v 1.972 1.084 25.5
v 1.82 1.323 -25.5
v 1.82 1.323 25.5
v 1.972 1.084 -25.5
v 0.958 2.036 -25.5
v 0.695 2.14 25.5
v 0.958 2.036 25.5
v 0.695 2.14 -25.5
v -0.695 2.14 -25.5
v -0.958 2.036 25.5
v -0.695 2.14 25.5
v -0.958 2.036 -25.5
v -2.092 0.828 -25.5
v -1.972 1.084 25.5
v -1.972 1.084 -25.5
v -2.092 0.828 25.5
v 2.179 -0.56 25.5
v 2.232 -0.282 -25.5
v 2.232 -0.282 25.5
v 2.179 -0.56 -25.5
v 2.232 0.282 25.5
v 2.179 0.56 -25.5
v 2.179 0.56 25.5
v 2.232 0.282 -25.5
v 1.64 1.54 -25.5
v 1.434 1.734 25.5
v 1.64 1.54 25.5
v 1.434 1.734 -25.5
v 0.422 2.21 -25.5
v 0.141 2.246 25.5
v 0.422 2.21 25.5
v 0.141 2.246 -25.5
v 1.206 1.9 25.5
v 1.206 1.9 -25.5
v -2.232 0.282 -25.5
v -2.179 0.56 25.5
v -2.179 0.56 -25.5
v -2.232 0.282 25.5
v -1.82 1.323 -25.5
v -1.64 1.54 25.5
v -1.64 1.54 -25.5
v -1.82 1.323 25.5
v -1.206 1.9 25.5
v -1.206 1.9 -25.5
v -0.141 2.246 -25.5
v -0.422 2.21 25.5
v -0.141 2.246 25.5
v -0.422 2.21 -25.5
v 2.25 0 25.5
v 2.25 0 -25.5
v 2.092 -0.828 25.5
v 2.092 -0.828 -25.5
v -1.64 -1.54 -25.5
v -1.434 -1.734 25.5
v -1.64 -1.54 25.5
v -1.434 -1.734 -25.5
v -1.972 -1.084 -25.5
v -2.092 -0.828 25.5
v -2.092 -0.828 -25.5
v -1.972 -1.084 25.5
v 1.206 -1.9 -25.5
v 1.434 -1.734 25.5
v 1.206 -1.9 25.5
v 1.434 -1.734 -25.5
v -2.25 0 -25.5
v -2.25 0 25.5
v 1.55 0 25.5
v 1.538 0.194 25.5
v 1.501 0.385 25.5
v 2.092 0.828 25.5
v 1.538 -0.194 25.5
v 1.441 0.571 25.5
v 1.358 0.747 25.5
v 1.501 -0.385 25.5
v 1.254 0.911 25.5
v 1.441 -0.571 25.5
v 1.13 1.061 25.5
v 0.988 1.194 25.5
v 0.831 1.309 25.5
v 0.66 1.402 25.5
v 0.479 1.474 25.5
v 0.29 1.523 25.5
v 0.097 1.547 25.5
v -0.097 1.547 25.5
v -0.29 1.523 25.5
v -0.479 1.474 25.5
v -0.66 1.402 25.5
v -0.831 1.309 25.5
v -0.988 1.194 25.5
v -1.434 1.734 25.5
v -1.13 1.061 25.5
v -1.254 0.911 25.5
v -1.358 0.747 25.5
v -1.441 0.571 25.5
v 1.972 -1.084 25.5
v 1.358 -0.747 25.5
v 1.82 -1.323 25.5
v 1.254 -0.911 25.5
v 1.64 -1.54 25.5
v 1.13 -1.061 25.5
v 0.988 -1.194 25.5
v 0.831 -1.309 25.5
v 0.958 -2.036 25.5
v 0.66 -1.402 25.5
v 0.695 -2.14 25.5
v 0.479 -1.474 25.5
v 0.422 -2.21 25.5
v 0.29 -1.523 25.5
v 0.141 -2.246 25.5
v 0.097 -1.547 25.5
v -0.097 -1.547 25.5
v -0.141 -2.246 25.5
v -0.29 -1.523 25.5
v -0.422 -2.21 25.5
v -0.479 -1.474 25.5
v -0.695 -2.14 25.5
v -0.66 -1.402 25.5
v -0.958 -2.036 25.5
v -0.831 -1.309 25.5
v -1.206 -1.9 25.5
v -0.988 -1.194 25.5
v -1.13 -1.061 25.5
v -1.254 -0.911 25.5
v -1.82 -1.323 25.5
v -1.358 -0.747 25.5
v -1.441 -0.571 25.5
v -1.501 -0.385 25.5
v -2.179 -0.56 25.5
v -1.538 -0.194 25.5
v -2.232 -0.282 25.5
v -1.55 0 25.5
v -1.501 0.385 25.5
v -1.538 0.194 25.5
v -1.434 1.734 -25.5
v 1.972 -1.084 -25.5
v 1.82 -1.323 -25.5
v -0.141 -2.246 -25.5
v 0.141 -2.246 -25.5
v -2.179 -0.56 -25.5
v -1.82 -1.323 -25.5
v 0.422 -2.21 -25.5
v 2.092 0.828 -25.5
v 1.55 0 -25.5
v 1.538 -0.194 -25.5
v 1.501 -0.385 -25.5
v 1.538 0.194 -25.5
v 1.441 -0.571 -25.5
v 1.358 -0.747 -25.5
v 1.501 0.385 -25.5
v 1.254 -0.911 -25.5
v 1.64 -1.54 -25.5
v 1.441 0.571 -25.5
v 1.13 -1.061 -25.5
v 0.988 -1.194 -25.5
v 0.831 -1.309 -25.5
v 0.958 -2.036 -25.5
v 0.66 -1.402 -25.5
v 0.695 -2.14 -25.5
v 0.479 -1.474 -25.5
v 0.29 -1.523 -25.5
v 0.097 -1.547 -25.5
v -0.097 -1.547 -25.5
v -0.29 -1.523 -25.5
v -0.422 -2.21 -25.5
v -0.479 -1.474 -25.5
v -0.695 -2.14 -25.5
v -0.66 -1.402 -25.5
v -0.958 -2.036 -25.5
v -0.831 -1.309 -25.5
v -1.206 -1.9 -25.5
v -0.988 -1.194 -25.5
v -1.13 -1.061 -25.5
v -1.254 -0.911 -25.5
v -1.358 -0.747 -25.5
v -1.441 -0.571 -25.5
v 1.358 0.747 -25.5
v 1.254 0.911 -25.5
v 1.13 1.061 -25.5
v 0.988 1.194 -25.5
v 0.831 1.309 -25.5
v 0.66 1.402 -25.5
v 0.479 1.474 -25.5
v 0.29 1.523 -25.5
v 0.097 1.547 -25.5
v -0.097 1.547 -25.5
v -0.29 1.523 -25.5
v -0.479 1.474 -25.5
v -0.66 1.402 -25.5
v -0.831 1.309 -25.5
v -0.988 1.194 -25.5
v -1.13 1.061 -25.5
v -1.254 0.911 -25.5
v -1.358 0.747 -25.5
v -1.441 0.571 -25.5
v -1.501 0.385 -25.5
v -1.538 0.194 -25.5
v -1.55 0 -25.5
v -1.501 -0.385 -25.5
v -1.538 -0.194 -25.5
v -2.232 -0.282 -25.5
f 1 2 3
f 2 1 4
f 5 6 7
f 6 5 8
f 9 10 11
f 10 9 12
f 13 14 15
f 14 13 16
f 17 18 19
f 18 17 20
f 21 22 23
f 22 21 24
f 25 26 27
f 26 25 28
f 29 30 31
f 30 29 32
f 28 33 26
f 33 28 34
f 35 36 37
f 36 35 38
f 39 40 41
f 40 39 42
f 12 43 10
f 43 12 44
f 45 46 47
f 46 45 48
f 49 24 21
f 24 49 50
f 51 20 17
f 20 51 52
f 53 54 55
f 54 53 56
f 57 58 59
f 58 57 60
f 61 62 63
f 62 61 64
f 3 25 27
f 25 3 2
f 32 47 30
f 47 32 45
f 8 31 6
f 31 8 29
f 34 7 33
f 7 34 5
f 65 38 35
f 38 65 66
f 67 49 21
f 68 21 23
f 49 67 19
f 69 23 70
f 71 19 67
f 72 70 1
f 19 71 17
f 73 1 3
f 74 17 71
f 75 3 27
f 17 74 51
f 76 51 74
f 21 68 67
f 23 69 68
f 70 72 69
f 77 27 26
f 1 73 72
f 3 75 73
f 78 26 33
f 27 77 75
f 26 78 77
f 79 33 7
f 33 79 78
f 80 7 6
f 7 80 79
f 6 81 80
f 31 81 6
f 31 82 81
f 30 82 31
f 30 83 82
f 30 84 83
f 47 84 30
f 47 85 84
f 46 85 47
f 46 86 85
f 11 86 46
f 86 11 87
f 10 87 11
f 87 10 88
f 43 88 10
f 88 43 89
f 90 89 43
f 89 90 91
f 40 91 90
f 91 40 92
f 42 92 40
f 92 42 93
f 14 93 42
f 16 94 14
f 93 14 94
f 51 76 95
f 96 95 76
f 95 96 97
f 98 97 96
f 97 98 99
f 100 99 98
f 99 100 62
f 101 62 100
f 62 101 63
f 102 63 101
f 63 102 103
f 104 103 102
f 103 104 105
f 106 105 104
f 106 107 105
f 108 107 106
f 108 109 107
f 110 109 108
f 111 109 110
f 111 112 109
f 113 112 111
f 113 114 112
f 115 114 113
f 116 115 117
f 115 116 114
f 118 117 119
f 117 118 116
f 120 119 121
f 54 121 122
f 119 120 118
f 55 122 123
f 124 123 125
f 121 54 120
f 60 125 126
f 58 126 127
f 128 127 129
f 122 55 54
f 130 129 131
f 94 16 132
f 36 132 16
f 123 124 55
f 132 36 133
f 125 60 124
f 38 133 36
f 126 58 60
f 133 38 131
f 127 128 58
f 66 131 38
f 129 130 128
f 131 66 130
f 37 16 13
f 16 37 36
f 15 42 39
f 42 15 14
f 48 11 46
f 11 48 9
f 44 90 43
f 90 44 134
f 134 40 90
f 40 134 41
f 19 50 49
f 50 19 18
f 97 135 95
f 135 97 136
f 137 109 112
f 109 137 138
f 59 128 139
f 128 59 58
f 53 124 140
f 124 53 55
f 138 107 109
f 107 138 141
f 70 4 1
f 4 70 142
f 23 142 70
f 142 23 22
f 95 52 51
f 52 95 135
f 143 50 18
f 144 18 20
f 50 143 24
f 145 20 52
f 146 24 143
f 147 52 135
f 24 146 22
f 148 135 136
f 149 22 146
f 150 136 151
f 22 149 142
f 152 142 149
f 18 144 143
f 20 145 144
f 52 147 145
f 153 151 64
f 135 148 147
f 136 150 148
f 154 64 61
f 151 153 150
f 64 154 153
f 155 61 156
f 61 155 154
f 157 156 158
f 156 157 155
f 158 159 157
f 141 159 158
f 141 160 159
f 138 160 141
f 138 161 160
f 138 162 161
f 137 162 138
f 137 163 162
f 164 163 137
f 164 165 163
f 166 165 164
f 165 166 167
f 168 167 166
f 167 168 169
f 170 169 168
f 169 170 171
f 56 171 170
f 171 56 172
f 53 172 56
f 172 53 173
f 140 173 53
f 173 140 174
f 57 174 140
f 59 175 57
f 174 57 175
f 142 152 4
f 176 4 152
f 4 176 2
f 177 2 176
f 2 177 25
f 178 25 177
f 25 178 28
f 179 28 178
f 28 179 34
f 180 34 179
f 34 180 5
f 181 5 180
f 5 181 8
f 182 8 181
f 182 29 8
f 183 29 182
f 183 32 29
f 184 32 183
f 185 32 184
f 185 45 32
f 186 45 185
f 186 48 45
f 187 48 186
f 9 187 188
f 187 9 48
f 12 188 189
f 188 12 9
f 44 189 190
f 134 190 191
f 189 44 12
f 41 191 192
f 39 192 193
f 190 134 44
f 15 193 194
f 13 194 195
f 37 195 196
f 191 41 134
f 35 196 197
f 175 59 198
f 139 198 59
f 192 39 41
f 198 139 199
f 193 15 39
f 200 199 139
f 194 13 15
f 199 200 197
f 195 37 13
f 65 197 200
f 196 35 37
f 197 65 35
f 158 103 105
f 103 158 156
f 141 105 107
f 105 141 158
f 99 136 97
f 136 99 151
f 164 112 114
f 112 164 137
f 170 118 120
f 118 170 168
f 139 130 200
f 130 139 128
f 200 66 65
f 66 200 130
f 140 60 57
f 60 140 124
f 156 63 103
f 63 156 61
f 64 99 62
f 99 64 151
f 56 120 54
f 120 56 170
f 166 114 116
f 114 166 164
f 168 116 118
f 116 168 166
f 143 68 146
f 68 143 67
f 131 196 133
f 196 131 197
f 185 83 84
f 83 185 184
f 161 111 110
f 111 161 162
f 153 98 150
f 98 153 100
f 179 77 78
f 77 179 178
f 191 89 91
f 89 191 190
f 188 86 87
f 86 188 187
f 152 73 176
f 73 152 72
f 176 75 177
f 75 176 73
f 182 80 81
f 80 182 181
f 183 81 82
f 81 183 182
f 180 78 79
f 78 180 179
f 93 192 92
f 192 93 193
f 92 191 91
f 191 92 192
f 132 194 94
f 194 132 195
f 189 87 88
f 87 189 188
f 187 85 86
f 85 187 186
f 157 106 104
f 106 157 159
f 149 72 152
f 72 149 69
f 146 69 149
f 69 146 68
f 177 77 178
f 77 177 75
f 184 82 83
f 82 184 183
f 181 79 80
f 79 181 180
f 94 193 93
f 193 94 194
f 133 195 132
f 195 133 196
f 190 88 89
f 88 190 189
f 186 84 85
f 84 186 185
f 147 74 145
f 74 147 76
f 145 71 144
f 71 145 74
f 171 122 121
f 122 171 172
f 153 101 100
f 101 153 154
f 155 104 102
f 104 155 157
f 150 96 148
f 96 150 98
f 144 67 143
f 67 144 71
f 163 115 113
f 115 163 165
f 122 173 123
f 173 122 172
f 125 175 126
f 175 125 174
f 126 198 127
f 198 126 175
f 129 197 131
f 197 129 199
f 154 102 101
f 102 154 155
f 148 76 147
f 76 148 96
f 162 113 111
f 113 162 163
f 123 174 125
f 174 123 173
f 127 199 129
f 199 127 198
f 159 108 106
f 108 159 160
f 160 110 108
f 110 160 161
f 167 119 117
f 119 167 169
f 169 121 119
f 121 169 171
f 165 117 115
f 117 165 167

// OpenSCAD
$fn = 50;


difference() {
	union() {
		translate(v = [0, 0, -25.5000000000]) {
			cylinder(h = 51, r = 2.2500000000);
		}
	}
	union() {
		translate(v = [0, 0, -100.0000000000]) {
			cylinder(h = 200, r = 1.5500000000);
		}
	}
}
